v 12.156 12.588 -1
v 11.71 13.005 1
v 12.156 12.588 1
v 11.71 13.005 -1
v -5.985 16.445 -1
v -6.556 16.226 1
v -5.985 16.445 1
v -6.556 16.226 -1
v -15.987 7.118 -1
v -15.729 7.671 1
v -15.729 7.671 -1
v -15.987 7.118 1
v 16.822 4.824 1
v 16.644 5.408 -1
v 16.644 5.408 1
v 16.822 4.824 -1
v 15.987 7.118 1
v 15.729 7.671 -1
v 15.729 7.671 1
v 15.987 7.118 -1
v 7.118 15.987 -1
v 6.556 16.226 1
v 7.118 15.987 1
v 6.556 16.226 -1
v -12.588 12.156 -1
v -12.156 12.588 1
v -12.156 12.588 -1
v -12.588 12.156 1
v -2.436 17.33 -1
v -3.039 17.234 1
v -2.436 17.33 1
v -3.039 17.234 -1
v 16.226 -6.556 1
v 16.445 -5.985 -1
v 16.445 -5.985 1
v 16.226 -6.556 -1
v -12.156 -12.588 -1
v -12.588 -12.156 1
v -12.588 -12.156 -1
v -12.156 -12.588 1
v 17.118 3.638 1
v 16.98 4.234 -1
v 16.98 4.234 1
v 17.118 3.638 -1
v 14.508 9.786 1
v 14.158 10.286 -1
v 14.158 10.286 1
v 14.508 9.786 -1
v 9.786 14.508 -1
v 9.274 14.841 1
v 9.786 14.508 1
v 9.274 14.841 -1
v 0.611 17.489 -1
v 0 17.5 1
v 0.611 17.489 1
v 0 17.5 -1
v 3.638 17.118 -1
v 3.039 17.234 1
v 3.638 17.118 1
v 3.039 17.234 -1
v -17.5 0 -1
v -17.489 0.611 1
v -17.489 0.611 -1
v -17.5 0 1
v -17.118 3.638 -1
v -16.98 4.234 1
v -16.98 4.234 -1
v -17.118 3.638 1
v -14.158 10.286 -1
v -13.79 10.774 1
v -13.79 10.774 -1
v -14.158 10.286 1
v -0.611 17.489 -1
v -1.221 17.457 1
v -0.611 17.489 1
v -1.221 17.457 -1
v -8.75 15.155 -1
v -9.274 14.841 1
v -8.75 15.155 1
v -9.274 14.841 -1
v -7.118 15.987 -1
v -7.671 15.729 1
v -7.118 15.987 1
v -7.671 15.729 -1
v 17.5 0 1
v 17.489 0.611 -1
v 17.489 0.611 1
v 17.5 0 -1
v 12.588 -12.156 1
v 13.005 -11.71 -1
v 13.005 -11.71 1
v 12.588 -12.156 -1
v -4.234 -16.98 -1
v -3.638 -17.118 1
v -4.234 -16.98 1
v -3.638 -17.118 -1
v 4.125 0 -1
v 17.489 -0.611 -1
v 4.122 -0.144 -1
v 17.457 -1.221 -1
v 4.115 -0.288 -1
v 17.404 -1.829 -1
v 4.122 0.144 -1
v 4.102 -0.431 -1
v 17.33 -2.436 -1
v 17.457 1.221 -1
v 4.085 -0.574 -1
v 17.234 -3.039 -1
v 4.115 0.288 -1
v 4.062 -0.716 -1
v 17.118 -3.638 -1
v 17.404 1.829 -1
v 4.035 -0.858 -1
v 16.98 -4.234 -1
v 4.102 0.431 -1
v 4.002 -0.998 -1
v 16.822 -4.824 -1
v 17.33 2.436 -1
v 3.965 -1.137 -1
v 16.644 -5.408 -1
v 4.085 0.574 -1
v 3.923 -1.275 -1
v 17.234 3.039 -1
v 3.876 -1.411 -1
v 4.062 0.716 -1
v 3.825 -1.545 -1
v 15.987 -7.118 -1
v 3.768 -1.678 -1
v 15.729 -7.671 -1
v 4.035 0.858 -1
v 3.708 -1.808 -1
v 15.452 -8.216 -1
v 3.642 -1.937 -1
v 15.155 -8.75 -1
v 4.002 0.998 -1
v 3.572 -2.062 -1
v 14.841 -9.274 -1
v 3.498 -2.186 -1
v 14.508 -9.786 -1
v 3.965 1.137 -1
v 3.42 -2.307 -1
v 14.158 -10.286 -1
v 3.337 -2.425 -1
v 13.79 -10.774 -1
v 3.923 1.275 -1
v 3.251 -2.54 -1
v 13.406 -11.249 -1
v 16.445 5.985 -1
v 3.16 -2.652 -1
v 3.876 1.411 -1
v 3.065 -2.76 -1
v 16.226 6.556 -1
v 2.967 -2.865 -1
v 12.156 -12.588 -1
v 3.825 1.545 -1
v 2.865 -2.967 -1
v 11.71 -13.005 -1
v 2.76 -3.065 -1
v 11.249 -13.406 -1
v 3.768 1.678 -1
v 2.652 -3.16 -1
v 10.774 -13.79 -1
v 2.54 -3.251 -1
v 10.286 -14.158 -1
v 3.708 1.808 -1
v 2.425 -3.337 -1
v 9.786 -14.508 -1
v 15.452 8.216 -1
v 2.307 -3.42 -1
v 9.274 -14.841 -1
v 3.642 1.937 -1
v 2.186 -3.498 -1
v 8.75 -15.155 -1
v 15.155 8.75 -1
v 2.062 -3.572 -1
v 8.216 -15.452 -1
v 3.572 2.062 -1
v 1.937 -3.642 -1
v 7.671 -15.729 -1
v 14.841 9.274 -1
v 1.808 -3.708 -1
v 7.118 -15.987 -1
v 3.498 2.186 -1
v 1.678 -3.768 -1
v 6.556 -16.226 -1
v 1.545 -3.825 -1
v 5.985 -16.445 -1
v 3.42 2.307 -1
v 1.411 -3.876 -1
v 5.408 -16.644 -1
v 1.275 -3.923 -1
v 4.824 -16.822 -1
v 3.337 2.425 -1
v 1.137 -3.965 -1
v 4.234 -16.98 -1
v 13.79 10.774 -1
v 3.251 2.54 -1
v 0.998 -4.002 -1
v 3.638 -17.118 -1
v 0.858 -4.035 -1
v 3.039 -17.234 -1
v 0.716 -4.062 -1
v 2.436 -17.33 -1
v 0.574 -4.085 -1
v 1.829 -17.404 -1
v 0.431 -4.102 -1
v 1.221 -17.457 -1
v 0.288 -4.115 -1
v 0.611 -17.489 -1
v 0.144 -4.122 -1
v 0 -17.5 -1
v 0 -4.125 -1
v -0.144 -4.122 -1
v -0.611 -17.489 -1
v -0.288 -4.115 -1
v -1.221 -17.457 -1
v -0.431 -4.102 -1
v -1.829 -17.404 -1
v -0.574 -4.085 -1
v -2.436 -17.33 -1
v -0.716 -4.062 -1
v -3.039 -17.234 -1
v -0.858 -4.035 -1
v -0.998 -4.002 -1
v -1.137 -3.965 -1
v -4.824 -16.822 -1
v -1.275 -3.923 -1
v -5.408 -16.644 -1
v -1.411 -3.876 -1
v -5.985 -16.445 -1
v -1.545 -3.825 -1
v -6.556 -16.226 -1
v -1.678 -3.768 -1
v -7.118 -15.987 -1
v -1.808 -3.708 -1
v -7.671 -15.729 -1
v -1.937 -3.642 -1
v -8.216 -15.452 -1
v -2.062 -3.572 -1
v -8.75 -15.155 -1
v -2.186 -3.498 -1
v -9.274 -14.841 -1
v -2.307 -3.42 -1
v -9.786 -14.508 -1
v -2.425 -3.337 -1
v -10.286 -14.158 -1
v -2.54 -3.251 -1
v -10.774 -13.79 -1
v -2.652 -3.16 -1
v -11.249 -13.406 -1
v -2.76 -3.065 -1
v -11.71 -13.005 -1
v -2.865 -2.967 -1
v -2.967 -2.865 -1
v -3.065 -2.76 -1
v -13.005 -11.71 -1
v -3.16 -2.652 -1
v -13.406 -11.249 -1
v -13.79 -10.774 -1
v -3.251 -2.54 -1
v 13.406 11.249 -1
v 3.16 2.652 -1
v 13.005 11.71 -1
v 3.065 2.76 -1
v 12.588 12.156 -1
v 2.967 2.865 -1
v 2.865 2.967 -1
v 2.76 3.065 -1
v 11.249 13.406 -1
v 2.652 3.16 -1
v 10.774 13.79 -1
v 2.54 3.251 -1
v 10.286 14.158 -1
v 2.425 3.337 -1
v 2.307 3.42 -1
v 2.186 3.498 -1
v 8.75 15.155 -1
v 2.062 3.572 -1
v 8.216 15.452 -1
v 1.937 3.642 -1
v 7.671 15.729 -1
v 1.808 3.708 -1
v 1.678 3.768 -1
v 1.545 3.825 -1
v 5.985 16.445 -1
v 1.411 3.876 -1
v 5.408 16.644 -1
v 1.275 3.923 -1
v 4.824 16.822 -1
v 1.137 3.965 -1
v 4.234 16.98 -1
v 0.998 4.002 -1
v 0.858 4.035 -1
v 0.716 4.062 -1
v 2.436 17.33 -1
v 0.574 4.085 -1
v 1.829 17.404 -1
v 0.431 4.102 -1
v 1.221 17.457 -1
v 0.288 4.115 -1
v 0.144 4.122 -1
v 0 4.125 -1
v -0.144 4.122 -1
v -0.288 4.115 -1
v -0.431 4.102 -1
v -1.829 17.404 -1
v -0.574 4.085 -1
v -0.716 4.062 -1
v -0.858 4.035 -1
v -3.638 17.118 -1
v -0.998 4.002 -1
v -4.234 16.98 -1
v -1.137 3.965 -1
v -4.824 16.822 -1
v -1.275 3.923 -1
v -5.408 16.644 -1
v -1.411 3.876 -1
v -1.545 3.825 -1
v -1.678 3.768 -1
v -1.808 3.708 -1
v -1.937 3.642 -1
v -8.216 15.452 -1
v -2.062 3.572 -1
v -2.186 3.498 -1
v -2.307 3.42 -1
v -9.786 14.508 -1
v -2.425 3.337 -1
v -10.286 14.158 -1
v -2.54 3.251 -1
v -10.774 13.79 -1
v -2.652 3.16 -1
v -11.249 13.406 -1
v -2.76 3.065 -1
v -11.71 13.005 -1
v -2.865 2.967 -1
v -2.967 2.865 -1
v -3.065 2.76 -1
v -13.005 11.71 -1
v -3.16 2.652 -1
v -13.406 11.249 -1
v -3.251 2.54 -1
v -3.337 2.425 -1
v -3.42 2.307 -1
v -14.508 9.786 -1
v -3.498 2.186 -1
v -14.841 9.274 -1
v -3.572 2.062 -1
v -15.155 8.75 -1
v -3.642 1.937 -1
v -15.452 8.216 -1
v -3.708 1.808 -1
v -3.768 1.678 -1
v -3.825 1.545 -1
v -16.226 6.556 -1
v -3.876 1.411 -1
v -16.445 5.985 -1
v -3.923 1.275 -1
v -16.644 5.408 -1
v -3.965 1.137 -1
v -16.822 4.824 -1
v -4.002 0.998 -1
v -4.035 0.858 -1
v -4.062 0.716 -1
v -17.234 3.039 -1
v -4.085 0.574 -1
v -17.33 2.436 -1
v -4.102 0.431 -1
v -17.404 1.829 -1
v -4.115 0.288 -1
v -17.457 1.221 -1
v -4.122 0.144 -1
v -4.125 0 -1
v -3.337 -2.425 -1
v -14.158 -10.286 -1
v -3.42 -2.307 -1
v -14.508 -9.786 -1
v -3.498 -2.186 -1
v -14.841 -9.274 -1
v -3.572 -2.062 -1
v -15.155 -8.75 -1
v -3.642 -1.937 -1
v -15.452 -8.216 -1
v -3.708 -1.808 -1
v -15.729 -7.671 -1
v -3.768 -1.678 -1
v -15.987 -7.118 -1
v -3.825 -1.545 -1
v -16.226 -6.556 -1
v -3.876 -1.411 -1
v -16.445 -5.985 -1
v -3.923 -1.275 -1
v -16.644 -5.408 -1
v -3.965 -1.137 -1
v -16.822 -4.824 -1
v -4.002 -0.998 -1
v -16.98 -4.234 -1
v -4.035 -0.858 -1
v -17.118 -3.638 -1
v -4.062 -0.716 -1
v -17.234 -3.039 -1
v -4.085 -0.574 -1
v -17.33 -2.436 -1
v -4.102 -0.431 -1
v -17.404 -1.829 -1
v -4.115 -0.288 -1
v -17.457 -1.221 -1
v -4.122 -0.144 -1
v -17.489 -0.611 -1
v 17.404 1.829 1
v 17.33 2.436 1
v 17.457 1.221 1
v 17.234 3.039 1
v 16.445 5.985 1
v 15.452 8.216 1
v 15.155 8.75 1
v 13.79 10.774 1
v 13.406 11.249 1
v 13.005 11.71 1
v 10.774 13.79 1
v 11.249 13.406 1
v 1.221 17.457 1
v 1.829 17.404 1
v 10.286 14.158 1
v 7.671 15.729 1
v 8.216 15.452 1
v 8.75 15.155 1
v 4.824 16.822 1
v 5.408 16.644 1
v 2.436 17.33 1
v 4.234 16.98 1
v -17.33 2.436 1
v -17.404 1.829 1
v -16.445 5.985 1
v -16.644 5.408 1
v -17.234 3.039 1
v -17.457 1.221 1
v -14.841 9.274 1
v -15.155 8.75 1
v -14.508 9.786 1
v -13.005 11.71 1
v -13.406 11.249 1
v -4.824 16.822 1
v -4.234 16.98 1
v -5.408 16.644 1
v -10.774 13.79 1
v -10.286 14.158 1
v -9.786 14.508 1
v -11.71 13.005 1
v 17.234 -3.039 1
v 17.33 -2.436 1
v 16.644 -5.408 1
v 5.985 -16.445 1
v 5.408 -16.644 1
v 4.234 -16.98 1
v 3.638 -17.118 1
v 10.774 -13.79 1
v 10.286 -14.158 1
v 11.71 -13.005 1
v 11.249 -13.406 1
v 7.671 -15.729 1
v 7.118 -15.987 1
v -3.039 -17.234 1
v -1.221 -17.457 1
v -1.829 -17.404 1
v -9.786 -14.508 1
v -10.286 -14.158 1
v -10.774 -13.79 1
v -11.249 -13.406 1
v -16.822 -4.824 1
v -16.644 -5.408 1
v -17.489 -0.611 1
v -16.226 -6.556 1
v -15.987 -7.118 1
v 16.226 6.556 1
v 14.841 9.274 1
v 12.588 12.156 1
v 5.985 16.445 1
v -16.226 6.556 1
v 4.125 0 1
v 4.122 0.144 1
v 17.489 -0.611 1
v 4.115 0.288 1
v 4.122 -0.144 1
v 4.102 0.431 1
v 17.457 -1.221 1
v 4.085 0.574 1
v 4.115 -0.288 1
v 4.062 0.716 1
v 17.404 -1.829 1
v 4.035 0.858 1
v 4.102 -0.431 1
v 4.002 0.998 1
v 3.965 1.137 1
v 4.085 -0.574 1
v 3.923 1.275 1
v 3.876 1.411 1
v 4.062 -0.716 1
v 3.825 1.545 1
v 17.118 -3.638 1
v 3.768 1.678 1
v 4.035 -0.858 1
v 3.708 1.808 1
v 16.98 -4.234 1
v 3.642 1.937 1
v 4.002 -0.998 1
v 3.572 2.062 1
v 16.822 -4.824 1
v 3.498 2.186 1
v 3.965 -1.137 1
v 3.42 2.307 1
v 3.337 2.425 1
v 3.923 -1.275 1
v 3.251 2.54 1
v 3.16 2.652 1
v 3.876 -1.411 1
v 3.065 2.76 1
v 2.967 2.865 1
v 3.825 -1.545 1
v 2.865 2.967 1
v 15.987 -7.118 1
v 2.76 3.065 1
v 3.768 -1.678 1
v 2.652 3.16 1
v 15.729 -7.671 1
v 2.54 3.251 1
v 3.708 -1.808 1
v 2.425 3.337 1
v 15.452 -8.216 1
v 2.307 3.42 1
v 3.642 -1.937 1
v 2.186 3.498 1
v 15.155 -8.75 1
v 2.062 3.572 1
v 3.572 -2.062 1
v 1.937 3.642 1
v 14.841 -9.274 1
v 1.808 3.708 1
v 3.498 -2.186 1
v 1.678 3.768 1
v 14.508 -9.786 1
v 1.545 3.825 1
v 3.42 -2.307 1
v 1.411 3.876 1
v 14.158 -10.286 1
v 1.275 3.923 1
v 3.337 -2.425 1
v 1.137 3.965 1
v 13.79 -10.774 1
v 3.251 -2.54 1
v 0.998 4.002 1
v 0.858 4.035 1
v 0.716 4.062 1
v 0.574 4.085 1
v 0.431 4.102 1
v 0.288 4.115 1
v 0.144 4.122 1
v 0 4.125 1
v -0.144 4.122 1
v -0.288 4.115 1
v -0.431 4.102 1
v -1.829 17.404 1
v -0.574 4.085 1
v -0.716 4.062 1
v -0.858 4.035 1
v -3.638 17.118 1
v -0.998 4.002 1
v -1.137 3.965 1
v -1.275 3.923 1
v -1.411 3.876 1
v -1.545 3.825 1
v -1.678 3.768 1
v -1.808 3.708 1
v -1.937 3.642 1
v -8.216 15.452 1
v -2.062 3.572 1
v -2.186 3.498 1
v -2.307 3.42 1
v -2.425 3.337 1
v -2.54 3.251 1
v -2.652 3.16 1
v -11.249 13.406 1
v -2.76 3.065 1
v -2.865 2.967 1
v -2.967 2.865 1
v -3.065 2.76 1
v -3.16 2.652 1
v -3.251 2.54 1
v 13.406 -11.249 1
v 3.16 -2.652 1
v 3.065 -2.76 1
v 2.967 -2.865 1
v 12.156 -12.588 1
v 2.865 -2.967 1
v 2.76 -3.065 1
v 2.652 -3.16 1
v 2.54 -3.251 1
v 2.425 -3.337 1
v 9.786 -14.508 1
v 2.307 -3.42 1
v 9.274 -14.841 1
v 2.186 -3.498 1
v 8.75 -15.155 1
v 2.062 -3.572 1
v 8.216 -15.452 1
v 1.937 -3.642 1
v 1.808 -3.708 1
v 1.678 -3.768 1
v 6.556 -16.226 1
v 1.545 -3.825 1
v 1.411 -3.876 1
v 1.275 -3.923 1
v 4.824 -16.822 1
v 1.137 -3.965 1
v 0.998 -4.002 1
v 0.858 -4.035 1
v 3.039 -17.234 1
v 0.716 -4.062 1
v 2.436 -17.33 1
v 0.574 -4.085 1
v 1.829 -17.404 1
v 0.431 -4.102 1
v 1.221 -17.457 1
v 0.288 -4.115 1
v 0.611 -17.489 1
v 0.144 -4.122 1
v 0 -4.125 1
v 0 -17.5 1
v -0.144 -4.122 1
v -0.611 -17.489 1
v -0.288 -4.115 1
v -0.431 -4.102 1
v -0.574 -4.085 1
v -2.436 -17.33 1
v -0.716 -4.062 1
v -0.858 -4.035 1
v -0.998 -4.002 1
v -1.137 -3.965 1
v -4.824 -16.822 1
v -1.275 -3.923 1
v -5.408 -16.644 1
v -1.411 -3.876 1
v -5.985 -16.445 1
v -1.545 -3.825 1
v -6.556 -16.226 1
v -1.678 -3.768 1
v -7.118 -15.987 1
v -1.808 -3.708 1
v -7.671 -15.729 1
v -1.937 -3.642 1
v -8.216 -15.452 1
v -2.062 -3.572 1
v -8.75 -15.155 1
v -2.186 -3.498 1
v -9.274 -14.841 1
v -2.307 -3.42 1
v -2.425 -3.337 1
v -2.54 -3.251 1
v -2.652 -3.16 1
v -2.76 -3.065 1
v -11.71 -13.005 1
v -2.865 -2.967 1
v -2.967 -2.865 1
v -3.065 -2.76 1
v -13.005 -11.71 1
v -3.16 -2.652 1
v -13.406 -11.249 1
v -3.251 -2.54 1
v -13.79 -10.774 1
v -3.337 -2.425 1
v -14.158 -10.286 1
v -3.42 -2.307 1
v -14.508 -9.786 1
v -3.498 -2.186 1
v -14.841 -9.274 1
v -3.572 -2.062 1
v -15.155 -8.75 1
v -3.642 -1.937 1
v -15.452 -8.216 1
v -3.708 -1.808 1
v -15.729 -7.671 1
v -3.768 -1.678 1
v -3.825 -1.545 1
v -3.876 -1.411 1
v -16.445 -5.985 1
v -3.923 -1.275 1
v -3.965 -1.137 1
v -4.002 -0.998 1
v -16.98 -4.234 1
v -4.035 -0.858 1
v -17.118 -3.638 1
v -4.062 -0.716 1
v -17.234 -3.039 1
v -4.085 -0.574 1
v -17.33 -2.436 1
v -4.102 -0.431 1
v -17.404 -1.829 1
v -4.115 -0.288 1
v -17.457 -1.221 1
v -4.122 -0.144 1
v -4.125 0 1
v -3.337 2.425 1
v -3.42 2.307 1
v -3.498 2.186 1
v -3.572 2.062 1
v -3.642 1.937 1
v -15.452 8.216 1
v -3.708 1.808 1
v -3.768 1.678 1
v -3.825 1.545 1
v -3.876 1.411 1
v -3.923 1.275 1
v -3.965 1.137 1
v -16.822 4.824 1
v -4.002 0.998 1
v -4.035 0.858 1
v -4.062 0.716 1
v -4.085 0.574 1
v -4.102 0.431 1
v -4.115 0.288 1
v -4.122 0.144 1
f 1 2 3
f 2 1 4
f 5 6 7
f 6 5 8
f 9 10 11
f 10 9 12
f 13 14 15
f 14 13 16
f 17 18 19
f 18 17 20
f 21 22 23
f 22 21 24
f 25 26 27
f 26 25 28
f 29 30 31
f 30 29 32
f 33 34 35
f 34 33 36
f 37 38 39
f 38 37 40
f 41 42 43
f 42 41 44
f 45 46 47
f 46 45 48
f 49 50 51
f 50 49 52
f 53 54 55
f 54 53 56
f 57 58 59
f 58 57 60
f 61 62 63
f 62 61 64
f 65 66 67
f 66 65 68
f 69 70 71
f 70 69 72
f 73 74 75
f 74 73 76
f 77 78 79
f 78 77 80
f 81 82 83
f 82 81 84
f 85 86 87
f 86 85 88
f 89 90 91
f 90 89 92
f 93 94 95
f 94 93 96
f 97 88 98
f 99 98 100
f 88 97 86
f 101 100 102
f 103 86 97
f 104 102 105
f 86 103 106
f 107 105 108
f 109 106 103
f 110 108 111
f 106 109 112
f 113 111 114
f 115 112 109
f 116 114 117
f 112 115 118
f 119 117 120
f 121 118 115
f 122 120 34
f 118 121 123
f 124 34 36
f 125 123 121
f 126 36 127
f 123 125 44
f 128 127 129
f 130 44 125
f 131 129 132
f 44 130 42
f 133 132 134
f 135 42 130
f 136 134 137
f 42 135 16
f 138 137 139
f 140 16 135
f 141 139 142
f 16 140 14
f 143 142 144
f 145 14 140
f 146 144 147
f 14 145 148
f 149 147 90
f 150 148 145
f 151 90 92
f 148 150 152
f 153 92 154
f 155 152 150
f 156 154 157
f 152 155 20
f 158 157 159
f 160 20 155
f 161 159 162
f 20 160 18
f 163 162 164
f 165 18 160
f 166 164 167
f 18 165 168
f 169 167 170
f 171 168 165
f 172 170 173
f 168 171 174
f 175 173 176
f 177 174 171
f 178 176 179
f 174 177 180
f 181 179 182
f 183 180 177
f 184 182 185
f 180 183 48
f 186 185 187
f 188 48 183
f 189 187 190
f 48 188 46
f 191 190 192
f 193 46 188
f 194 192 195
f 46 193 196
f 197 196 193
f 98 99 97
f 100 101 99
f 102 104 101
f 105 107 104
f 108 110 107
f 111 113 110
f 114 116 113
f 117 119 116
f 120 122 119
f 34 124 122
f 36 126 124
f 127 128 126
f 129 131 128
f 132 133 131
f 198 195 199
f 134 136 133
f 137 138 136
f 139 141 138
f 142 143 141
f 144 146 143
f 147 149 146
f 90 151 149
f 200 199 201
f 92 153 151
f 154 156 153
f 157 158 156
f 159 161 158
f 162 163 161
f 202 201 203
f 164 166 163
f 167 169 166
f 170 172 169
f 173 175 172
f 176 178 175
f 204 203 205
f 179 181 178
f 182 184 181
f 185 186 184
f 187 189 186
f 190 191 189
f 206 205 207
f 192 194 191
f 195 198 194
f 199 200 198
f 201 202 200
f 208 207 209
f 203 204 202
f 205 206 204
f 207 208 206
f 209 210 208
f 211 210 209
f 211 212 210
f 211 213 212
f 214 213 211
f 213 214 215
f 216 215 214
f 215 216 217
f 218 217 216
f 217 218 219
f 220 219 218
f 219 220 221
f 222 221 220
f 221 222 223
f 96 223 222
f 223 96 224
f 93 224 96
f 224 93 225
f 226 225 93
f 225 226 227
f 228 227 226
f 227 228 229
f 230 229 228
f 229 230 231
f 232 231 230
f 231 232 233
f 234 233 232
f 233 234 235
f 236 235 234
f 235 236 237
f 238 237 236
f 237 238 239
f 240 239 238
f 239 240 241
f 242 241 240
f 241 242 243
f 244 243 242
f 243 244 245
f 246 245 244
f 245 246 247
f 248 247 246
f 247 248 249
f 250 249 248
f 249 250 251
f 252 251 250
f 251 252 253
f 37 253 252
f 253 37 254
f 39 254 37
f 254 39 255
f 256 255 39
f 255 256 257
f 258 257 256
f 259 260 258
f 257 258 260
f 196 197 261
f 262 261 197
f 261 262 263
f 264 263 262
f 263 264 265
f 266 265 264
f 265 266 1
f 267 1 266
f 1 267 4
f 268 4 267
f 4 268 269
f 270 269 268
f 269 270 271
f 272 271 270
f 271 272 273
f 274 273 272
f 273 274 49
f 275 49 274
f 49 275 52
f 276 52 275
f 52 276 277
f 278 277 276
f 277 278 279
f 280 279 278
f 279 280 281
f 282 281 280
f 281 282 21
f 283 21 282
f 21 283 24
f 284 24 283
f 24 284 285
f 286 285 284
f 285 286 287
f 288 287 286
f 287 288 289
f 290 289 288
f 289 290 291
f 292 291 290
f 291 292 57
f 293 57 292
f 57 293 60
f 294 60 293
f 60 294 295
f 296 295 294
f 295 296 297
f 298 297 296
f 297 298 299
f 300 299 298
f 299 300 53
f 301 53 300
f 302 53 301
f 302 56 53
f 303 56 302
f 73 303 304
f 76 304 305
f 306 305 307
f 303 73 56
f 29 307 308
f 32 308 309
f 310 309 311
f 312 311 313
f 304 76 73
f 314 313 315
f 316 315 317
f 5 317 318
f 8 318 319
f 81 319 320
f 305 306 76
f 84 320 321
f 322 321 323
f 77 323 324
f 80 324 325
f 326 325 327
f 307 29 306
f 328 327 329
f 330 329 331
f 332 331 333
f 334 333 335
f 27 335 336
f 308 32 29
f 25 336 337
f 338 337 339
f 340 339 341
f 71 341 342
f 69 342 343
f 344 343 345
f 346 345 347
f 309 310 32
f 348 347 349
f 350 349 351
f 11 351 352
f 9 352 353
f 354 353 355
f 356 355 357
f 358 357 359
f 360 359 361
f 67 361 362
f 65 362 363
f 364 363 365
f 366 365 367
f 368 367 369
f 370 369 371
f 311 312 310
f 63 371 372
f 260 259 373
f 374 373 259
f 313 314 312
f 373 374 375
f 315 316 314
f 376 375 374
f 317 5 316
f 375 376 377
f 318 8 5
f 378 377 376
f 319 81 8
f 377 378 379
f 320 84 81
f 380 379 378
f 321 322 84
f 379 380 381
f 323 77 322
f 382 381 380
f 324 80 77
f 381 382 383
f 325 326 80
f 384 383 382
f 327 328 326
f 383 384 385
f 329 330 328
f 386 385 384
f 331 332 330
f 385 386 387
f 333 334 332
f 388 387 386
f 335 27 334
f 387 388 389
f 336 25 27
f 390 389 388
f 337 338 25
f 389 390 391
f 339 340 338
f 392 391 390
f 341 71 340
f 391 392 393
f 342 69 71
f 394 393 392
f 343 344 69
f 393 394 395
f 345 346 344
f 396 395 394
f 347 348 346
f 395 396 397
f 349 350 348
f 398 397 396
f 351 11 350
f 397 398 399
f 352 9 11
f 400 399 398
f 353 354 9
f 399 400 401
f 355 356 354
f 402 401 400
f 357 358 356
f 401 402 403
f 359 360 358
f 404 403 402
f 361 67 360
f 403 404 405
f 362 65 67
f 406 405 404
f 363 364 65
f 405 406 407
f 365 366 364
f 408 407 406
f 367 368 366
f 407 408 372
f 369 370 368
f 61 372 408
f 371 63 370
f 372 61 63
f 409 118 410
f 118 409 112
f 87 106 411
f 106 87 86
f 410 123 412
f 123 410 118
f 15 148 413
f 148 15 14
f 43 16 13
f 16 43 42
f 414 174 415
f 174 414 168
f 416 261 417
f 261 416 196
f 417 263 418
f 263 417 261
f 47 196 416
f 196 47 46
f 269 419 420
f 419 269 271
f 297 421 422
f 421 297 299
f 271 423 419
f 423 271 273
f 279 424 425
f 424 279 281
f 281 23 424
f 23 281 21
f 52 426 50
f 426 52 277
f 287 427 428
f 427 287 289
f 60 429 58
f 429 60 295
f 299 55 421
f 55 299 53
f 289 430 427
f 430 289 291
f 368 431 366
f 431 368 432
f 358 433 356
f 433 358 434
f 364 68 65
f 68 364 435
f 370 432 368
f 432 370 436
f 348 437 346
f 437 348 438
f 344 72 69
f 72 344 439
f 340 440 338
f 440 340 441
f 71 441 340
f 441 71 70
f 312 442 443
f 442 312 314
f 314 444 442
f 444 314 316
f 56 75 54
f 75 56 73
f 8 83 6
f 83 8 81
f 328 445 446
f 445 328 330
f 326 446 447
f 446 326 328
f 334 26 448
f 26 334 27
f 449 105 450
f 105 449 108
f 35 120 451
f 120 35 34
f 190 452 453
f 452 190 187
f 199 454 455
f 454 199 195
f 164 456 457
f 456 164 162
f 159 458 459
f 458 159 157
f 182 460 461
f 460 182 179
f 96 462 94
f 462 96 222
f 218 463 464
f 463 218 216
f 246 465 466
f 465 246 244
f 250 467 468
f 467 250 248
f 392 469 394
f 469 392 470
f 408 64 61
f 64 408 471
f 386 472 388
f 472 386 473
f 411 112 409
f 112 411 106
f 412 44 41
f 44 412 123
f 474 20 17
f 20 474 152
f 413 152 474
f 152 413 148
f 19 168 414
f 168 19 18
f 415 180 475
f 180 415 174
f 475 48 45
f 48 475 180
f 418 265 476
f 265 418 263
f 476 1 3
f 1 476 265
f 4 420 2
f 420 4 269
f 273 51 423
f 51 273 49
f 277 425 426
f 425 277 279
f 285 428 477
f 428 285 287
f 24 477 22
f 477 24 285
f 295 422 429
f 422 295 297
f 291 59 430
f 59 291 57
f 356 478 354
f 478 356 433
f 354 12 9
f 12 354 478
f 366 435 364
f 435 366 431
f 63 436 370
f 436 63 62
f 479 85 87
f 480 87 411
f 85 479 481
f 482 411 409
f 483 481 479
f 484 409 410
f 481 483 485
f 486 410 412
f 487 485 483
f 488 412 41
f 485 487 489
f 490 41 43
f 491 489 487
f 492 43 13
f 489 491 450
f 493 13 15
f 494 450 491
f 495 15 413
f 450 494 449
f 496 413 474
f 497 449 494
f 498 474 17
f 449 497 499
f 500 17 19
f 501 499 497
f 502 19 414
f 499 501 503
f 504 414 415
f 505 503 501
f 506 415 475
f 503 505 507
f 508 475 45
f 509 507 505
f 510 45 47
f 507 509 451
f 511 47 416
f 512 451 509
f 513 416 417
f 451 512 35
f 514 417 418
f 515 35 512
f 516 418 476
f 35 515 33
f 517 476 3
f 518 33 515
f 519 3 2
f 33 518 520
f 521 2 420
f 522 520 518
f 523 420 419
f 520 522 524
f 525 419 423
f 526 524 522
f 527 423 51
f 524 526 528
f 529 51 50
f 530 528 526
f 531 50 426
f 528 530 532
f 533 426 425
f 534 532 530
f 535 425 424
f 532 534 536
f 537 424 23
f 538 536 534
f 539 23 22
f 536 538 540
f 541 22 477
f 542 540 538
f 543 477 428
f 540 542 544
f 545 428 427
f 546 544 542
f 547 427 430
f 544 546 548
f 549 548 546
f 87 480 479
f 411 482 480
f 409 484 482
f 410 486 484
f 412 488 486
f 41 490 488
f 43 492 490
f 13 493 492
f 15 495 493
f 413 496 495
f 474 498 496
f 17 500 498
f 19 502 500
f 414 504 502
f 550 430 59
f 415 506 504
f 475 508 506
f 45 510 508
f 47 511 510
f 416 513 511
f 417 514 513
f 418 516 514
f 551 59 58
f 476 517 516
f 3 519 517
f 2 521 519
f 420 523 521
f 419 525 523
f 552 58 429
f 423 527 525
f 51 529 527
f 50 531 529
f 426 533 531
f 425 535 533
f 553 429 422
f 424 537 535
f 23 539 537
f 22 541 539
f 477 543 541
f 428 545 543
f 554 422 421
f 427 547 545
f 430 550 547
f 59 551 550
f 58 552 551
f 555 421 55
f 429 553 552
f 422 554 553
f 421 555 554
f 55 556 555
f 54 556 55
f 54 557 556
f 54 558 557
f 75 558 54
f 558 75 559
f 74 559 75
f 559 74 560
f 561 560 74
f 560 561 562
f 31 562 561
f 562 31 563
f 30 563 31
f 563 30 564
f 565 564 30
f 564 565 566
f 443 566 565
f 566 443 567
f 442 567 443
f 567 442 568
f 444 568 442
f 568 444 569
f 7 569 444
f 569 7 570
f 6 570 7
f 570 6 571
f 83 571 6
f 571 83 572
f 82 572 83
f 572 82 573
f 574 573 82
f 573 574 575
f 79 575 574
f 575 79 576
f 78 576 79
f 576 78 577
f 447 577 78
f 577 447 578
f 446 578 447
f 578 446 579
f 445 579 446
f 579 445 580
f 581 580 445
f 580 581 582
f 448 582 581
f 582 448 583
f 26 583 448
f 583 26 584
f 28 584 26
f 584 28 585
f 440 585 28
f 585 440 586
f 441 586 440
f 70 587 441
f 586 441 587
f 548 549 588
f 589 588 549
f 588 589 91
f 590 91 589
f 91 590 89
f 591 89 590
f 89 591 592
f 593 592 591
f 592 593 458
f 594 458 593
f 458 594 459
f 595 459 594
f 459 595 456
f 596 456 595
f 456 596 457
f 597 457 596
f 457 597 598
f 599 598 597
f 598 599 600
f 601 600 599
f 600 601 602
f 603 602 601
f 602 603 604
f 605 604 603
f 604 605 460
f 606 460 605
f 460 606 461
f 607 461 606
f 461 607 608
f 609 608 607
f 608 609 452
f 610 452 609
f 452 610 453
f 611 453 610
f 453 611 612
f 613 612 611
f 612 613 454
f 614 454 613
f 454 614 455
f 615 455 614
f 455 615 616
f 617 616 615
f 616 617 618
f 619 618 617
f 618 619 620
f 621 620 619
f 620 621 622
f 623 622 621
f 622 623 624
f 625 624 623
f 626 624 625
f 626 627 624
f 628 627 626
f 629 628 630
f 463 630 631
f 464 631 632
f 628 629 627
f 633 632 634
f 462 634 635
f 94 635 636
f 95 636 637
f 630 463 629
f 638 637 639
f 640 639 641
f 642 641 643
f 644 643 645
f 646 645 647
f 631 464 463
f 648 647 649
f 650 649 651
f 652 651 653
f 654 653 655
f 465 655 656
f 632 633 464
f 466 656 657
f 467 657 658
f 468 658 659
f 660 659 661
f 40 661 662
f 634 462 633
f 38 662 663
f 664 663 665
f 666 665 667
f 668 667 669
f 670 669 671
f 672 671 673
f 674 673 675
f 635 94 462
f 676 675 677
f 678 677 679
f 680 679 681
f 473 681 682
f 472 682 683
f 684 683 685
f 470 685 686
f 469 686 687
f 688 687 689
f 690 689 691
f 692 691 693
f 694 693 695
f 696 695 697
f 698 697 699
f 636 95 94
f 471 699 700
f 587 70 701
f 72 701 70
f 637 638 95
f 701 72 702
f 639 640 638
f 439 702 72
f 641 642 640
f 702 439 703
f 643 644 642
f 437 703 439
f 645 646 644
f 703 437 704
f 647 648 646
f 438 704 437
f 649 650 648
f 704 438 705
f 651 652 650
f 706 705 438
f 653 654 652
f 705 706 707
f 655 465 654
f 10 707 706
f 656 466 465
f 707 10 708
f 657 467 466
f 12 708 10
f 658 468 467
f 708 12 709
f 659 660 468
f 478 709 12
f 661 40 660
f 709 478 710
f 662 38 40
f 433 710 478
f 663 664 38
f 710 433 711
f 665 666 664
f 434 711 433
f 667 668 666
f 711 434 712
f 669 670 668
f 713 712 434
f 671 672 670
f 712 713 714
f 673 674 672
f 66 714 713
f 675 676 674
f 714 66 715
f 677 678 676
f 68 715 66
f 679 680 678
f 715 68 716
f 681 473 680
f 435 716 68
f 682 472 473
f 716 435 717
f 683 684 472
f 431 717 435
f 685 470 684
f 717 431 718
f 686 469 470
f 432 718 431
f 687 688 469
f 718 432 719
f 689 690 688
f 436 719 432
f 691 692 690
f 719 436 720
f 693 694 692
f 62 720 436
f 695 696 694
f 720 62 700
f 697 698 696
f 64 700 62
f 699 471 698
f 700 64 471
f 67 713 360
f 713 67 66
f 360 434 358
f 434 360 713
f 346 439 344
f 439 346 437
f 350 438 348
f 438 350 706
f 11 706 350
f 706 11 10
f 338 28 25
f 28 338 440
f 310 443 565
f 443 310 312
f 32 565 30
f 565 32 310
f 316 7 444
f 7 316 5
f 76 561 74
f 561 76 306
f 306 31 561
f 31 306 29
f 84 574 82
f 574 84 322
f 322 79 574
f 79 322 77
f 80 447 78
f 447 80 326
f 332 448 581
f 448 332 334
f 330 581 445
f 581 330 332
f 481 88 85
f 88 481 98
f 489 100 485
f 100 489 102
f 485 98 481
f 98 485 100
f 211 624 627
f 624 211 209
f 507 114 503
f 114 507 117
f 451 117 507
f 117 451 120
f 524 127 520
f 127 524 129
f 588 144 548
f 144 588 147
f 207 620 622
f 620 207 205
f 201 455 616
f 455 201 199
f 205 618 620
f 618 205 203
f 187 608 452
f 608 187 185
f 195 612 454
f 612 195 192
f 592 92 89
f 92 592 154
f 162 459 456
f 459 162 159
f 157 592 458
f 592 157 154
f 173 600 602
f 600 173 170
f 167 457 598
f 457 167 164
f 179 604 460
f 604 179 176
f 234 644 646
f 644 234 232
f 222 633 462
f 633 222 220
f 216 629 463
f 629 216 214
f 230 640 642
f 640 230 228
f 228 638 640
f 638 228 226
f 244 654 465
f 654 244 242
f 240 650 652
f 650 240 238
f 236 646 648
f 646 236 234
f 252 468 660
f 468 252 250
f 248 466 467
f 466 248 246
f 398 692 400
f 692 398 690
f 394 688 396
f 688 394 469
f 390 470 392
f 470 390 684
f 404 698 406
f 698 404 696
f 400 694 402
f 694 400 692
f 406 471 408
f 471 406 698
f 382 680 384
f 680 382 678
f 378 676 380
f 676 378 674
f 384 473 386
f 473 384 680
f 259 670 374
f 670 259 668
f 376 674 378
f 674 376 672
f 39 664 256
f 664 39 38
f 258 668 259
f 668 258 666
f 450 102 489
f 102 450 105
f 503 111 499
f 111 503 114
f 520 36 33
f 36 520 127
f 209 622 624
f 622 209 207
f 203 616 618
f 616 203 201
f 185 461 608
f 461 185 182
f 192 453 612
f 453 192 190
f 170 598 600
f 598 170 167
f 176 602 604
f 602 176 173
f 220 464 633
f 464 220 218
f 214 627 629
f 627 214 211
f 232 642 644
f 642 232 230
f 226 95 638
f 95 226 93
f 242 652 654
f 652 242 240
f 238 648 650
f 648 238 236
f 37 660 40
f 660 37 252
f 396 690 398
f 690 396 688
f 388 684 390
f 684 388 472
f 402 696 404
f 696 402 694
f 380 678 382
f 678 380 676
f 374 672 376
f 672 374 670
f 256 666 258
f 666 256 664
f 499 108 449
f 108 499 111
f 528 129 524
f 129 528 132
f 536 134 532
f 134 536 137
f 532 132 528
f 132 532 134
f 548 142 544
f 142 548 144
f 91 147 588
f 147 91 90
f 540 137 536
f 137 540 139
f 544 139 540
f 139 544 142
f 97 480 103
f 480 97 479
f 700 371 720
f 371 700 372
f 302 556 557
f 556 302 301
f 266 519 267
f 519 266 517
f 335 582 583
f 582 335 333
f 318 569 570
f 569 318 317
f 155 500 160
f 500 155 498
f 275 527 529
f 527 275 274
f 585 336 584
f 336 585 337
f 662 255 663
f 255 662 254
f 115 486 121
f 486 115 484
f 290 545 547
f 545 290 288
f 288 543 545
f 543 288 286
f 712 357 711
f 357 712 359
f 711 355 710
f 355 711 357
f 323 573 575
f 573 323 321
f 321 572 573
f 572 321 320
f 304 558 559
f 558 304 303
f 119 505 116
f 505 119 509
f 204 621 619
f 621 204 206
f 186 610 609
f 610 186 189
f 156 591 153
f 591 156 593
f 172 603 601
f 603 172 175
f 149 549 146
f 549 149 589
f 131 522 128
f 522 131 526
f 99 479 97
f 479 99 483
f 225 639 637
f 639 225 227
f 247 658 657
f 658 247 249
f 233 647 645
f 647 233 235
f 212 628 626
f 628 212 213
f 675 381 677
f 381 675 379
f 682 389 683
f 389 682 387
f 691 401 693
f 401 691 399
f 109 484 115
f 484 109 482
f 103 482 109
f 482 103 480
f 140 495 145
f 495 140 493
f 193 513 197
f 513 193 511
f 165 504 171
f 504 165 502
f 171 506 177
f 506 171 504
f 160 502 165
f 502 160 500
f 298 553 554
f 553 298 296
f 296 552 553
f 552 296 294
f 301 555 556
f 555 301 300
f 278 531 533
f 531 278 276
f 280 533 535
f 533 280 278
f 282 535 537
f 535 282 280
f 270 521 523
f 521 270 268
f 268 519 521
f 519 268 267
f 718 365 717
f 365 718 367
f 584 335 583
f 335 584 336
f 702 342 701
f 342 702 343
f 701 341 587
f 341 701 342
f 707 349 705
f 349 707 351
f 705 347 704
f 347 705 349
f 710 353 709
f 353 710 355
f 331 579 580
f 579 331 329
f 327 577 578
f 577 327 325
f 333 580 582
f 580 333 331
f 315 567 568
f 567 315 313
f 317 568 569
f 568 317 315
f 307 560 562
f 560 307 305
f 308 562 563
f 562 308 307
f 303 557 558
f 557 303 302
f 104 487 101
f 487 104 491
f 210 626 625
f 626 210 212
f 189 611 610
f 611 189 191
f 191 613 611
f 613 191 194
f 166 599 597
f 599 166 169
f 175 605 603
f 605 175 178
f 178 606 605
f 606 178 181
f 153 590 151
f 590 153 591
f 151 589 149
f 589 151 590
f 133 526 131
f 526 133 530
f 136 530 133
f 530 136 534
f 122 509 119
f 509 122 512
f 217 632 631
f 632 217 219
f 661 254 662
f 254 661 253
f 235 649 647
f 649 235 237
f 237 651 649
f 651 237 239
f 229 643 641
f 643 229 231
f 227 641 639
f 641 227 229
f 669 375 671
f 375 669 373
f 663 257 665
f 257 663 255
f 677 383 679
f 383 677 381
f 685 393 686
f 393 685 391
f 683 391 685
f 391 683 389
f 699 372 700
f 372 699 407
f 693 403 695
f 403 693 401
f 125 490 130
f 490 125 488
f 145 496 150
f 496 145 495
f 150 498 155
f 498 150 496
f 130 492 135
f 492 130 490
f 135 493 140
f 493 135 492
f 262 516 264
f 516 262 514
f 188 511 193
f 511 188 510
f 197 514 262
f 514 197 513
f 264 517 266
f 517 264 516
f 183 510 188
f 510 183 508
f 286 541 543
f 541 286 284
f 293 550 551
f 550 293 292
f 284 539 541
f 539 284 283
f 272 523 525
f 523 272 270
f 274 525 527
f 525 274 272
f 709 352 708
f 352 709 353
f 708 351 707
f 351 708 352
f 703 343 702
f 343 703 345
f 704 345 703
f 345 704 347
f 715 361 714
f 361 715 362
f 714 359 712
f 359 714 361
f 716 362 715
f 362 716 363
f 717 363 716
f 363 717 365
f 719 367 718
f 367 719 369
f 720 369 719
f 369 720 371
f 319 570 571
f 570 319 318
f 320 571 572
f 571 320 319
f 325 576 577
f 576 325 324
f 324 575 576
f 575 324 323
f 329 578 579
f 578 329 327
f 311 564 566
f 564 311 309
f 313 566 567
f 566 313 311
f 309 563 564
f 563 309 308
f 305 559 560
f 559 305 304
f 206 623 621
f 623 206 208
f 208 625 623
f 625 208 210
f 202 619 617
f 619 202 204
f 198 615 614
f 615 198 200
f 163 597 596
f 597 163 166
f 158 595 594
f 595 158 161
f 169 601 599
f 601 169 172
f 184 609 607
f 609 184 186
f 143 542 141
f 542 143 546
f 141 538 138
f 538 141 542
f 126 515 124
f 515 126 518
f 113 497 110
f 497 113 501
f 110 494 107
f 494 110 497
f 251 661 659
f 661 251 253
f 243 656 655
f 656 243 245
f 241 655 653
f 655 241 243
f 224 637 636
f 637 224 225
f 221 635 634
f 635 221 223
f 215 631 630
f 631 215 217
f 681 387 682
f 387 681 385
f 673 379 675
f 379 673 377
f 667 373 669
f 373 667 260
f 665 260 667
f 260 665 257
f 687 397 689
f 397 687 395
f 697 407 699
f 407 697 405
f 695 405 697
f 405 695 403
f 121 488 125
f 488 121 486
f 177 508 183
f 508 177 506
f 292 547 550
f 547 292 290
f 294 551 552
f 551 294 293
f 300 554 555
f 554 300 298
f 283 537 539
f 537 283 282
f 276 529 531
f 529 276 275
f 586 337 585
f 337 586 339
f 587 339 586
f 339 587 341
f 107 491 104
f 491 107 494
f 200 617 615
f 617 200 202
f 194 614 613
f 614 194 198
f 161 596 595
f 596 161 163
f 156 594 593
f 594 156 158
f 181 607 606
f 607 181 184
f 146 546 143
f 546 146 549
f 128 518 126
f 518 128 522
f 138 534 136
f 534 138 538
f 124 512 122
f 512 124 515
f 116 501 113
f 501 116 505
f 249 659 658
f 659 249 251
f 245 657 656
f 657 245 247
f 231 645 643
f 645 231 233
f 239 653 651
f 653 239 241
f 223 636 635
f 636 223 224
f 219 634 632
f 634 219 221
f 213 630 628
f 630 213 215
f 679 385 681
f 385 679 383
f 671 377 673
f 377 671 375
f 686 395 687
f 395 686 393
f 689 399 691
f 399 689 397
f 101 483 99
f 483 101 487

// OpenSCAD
//cube([120,120,3], center = true);
//translate([-45,-45,0])cylinder(h = 3, r=15, $fn = 180, center = true);
//rotate_extrude(convexity = 10, $fn = A) translate([20+1.5, 0, 0])circle(d = 3, $fn = B);


difference(){
cylinder(h = 2, d=35, $fn = 180, center = true);

cylinder(h = 3, d=8.25, $fn = 180, center = true);

}

//translate([20,0,-0.75]) cube([10,2,0.5], center = true);
 
